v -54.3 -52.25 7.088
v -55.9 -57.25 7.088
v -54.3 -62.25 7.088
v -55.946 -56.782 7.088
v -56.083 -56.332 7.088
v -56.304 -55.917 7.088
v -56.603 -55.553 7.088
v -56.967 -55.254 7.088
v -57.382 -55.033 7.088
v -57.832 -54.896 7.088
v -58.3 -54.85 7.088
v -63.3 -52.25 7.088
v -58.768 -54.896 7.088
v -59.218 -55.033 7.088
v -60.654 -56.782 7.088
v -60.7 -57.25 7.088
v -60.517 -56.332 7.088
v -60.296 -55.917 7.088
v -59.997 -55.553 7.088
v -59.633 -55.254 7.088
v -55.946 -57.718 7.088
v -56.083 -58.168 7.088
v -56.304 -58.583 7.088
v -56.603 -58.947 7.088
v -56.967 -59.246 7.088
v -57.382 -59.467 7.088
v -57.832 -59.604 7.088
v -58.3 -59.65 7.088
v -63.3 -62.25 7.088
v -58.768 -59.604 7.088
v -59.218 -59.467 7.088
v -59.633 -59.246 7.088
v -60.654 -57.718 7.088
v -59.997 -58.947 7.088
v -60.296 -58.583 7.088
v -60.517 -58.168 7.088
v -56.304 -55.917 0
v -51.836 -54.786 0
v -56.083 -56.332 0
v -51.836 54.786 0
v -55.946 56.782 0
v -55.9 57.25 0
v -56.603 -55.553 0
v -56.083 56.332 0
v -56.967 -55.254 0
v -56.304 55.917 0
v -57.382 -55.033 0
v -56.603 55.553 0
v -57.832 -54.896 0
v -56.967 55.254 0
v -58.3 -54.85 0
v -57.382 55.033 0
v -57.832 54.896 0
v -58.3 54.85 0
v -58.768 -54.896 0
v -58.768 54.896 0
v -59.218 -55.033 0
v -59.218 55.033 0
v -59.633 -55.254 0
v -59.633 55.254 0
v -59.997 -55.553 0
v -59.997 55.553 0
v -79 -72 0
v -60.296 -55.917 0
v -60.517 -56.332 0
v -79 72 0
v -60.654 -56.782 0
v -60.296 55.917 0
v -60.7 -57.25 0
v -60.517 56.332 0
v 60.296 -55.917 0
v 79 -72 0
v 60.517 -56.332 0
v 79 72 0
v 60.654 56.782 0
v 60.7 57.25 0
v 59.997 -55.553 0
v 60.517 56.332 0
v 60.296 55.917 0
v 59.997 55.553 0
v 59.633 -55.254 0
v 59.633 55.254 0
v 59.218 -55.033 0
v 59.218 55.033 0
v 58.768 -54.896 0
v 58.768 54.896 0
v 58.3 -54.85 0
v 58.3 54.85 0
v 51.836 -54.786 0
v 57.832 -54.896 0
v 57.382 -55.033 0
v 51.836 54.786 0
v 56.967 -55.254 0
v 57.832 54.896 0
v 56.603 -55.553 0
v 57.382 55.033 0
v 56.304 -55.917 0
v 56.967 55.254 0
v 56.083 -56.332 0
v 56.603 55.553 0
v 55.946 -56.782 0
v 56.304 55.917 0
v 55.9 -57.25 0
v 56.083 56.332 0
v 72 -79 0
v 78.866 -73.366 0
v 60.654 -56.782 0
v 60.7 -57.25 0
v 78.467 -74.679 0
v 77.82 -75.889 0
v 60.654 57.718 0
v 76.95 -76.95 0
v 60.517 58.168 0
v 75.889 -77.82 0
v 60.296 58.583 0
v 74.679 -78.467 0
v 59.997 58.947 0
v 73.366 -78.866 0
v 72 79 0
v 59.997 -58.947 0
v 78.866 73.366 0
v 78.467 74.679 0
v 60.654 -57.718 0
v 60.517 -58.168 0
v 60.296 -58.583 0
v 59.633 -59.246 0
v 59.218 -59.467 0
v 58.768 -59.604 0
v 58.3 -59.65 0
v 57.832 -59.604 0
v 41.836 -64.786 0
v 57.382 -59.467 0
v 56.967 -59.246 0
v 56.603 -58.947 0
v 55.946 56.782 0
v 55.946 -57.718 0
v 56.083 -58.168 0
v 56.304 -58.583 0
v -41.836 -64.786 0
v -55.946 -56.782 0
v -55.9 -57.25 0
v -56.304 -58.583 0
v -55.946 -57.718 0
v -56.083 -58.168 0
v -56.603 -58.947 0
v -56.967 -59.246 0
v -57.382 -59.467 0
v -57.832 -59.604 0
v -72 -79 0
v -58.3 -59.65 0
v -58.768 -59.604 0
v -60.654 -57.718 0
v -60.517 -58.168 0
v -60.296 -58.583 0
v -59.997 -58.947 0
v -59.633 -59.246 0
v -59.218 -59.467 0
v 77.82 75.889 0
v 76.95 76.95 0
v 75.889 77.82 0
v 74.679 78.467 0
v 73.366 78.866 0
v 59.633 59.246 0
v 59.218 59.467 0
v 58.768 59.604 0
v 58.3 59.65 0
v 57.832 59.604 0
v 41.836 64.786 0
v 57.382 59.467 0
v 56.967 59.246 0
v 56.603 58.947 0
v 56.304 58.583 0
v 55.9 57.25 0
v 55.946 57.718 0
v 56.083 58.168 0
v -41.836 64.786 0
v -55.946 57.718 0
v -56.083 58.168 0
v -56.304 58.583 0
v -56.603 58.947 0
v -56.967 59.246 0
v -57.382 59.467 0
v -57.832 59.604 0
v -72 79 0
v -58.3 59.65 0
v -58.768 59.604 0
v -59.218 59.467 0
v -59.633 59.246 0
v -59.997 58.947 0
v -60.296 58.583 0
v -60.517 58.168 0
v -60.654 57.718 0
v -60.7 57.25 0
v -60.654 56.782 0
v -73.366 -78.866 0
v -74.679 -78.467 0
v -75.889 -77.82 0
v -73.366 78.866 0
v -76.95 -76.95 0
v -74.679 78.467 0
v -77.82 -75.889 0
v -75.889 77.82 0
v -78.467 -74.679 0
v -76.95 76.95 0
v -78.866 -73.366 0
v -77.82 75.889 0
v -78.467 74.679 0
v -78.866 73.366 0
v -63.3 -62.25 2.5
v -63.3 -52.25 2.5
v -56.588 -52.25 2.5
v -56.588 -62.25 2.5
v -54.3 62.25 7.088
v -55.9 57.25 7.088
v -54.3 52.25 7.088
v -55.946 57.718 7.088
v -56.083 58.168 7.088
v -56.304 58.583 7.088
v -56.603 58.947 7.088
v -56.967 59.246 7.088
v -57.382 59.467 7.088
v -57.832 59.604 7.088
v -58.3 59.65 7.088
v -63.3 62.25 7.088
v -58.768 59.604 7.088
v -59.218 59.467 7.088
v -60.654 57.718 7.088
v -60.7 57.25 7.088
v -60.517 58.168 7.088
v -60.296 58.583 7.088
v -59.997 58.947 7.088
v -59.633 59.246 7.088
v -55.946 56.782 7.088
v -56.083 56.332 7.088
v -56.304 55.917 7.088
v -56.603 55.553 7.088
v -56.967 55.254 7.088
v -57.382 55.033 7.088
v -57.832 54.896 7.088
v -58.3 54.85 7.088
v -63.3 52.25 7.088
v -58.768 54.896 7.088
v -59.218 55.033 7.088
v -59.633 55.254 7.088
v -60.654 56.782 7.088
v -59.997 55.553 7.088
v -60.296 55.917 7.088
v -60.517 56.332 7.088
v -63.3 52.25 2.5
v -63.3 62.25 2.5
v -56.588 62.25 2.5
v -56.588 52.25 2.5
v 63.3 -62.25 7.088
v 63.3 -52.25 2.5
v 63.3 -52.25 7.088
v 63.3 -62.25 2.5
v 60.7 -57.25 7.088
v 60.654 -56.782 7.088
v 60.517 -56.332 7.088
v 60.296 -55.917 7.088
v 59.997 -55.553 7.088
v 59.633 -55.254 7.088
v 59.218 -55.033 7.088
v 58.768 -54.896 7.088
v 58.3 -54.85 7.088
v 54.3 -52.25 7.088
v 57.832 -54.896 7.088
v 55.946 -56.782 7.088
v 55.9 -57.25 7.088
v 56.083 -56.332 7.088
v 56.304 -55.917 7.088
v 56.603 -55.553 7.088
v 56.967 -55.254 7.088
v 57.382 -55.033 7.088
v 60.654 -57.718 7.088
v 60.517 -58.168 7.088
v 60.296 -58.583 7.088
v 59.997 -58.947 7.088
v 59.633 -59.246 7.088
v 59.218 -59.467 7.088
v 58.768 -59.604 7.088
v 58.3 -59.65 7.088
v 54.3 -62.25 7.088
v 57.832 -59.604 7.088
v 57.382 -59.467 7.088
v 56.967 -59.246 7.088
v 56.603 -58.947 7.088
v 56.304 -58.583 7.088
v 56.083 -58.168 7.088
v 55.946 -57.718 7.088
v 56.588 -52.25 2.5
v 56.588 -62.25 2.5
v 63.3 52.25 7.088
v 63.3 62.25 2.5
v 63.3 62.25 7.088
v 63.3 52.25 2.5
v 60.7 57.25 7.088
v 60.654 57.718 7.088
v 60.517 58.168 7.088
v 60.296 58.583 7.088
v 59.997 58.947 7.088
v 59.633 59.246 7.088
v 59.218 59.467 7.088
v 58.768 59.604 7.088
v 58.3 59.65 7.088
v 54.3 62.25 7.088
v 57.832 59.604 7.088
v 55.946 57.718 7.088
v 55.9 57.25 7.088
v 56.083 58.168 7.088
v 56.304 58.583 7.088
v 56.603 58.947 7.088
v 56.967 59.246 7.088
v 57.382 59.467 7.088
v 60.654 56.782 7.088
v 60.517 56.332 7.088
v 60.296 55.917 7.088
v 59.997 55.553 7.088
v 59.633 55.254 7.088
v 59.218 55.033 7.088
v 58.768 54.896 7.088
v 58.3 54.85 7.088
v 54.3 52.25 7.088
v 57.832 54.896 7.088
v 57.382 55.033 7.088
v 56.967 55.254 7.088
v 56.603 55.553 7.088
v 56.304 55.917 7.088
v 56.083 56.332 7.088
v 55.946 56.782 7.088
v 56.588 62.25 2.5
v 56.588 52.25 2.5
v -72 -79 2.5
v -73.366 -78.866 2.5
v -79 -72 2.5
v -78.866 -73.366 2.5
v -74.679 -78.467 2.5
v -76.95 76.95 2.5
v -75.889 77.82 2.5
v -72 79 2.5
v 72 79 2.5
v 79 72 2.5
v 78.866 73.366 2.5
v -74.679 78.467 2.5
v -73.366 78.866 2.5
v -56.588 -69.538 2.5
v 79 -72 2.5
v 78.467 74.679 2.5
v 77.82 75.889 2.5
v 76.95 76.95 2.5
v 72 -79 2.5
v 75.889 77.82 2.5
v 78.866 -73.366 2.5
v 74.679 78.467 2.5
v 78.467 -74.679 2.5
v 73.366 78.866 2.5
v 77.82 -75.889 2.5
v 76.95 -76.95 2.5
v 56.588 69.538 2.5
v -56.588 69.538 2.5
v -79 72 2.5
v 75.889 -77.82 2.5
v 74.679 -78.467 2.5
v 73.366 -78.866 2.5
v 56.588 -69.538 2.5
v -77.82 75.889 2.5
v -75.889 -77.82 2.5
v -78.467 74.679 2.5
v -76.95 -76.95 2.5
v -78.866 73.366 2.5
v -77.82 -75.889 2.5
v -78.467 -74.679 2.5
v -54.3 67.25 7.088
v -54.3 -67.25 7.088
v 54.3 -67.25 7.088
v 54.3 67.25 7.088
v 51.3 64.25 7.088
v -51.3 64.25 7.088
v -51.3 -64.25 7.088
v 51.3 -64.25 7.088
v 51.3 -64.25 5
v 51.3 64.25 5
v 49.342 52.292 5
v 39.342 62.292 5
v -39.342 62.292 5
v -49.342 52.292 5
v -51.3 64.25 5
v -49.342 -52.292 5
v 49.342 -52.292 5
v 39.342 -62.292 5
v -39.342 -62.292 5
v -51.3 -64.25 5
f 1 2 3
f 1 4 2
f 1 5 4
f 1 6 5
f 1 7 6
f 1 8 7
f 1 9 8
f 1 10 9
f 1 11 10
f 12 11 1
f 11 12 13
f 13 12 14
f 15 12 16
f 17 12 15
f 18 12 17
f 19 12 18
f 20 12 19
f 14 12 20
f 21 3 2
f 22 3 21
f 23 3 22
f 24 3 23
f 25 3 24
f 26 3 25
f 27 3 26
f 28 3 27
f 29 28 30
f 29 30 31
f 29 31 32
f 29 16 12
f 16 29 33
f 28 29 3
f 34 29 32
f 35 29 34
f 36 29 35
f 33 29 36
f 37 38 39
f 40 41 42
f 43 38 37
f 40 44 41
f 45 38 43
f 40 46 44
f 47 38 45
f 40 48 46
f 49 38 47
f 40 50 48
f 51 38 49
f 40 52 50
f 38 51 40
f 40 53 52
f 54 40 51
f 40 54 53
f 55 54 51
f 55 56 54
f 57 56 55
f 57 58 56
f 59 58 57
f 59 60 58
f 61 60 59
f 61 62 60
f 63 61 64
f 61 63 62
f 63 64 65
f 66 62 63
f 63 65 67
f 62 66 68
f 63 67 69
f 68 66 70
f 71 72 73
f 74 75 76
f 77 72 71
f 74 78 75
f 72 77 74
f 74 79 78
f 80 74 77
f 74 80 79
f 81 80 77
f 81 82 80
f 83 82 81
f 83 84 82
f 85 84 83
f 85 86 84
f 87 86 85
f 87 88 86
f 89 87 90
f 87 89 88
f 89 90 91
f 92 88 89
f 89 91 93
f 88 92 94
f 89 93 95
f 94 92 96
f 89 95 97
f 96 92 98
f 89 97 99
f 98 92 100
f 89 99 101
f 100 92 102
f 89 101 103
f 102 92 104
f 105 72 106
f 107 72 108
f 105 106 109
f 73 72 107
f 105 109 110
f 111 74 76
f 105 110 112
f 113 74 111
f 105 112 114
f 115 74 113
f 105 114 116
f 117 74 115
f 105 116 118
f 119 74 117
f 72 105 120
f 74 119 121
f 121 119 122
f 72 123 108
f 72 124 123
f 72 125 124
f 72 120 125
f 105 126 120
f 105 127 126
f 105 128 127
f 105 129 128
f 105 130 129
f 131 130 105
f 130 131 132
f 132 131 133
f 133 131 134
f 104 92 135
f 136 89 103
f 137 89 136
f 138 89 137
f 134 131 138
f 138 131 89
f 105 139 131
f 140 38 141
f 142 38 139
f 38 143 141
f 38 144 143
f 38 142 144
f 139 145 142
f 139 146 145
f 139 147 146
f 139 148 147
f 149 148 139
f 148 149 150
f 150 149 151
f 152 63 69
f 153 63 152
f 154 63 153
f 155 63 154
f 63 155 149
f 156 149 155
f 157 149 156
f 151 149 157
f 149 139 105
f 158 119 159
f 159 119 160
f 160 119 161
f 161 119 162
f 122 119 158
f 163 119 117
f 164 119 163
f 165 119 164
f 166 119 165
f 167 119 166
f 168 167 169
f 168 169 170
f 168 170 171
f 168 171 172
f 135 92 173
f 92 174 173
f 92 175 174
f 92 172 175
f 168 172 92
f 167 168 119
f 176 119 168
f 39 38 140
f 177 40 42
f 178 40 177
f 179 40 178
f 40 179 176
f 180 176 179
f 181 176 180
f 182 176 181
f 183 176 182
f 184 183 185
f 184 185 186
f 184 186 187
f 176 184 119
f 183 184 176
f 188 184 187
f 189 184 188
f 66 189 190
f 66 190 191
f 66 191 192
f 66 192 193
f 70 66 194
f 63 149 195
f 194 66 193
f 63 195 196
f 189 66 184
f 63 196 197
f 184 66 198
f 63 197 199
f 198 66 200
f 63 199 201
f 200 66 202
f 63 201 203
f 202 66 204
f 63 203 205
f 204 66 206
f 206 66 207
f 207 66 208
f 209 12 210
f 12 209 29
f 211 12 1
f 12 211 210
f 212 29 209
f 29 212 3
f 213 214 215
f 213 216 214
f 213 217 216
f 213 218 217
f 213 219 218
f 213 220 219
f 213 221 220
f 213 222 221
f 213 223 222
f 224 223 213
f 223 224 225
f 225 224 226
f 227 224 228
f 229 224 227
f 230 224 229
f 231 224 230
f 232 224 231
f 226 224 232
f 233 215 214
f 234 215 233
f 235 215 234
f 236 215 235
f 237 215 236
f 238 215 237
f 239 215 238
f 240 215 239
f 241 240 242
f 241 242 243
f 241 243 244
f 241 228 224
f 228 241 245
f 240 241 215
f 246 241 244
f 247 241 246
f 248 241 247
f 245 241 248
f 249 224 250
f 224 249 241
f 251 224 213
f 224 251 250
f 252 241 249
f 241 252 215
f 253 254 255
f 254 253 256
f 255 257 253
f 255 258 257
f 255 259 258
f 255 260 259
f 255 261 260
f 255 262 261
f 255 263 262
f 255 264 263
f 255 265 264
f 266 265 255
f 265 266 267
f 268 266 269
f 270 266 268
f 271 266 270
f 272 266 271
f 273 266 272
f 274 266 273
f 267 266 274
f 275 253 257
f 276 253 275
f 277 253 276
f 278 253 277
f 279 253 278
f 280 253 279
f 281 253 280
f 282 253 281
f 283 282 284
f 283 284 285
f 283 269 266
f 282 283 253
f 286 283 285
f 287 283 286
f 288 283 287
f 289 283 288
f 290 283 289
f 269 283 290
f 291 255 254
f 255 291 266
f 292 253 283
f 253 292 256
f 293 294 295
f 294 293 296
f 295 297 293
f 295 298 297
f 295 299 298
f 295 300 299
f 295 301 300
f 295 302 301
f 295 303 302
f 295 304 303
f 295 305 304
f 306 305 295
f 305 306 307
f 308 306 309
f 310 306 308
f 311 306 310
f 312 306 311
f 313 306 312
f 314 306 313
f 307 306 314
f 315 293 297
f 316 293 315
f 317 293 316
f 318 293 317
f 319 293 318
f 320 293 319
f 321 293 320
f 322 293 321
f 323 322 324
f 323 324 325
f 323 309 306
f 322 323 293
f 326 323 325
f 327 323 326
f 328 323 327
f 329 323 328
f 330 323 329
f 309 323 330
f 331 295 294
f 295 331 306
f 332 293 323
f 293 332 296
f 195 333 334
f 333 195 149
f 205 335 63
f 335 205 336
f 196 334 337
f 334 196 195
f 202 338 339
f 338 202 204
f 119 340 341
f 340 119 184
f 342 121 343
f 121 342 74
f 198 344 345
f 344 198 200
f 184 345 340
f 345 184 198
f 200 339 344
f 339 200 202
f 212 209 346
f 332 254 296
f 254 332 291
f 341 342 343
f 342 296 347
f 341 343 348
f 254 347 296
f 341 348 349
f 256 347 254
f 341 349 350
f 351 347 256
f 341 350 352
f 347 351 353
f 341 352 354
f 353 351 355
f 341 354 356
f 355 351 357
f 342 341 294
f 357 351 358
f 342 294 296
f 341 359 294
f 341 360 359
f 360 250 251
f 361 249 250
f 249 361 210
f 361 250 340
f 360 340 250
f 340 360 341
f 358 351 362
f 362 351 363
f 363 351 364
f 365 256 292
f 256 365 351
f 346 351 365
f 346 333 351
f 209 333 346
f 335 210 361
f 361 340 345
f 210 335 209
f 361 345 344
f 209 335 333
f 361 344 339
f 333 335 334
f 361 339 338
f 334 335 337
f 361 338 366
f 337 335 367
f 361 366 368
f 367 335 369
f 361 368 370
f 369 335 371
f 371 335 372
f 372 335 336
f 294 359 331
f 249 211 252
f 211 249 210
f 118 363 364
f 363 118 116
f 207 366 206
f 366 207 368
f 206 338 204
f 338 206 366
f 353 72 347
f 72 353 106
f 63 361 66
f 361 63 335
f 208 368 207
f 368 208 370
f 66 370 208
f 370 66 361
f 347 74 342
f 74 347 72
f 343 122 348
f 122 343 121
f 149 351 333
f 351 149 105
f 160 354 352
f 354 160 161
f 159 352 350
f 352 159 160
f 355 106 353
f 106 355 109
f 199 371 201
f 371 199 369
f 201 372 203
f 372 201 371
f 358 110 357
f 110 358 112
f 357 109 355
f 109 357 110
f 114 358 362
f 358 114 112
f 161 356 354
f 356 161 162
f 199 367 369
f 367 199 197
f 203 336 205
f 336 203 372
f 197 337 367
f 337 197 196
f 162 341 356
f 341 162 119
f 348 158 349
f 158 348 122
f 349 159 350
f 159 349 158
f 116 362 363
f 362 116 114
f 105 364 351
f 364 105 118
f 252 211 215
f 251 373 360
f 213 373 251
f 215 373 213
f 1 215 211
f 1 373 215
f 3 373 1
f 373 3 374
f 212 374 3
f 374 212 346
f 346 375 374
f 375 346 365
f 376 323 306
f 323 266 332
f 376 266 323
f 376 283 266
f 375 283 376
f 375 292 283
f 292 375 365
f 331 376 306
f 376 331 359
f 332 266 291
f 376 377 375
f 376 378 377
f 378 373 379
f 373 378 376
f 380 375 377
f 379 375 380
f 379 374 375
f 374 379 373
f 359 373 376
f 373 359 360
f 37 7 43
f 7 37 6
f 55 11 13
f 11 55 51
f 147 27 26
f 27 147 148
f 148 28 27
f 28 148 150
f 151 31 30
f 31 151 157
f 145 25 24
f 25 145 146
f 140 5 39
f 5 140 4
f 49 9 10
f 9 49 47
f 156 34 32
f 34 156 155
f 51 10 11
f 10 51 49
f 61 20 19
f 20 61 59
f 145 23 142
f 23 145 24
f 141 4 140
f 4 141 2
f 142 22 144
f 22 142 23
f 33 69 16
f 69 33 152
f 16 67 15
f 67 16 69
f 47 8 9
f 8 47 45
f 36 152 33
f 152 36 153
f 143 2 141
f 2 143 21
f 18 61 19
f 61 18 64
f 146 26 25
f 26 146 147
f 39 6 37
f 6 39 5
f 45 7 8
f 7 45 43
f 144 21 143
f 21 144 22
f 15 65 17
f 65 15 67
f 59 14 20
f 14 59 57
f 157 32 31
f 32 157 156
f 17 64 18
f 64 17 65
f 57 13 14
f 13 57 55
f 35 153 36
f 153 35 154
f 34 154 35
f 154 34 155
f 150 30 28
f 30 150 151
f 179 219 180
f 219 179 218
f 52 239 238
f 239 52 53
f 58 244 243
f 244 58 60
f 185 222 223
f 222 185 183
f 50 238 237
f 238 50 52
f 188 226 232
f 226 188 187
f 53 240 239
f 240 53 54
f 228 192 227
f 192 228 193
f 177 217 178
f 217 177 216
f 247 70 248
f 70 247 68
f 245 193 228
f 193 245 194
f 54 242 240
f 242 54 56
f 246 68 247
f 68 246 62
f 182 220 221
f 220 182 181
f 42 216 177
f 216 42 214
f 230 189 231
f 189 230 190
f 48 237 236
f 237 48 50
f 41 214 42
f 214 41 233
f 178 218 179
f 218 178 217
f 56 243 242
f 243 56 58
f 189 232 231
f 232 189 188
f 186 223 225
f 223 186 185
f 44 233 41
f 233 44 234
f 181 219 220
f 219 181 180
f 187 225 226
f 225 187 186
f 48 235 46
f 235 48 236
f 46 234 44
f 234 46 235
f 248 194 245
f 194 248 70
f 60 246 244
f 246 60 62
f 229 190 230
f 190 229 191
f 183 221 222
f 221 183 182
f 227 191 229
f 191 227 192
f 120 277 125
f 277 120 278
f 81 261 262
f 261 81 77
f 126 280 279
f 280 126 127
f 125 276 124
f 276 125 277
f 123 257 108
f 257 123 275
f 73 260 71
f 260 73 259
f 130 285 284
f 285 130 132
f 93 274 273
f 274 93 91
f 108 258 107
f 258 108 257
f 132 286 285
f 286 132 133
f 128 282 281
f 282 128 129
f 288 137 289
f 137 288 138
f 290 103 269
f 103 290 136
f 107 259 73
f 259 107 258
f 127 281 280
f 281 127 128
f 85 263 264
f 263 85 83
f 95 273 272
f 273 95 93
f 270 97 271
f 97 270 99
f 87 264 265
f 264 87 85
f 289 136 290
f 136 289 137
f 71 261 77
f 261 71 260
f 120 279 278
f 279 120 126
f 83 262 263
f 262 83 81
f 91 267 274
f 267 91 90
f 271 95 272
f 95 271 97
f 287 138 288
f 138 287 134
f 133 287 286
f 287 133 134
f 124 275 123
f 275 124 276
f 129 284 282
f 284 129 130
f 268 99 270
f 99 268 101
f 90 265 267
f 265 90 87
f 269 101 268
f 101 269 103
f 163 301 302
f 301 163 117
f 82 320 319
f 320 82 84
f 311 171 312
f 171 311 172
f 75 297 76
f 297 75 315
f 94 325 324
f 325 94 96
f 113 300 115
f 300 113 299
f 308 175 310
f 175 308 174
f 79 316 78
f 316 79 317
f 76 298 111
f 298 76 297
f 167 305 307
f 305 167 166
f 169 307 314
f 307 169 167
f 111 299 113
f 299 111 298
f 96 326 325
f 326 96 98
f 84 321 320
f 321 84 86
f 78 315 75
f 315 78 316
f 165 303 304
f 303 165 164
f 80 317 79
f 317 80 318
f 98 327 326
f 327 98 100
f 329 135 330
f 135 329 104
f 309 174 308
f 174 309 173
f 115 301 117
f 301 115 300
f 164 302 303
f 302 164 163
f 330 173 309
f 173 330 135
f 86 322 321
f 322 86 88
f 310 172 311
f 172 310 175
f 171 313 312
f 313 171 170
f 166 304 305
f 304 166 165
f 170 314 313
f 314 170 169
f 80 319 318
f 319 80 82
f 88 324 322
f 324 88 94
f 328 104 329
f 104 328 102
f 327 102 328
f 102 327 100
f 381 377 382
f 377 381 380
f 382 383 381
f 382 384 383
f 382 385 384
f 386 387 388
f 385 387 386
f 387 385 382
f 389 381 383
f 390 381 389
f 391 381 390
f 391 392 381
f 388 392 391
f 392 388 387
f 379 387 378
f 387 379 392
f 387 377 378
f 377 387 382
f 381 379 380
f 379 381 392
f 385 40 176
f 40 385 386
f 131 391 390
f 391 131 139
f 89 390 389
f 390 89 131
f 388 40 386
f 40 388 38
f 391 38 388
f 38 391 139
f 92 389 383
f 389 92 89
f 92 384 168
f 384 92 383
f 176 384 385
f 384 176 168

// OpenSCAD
/* difference() {
    translate([-45,-45])
    import("LensBoard_Toyo-view_blank_v2.stl");
   
    translate([0,0,-10])
    cube_center([130,140,50]);
    
    for(s=[-1:1]) for(t=[-1,1])
    translate([t*70,s*70,0])
    cylinder(d=3.2,h=20,$fn=32, center=true);
} */

GGL=4*25.4+1;
GGW=5*25.4+1.5;
GGT=1/16*25.4+0.5;
OH=5;
F=10;
TT=2.5;

difference() {
    union() {
        cube_center([158,158,TT], r=7);
        minkowski() {
            cube_center([GGL+6,GGW+6,0.0001]);
            rotate([0,0,45])
            cylinder($fn=4,d1=F,d2=0.0001,h=OH+GGT);
        }
        for(t=[-1,1]) for(s=[-1,1])
        translate([t*(GGL/2+7),s*(GGW/2-7),0])
        cube_center([10,10,OH+GGT]);
    }
    
    for(t=[-1,1]) for(s=[-1,1])
    translate([t*(GGL/2+7),s*(GGW/2-7),0])
    cylinder(d=4.8,h=60,$fn=32);
    
    translate([0,0,OH])
    cube_center([GGL, GGW, GGT+5]);
    
    minkowski() {
        translate([0,0,0])
        cube_center([GGL-6-20, GGW-6-20, 0.0001]);
        rotate([0,0,45])
        cylinder($fn=4,d1=F,d2=0.0001,h=OH+GGT);
        cylinder($fn=4,d=20,h=0.0001);
    }
}

module cube_center(dims,r=0) {
    if(r==0) {
        translate([-dims[0]/2, -dims[1]/2, 0])
        cube(dims);
    } else {
        
        minkowski() {
            translate([-dims[0]/2+r, -dims[1]/2+r, 0])
            cube([dims[0]-2*r,dims[1]-2*r,dims[2]]);
            cylinder(r=r,h=0.00001,$fn=32);
        }
    }
}
